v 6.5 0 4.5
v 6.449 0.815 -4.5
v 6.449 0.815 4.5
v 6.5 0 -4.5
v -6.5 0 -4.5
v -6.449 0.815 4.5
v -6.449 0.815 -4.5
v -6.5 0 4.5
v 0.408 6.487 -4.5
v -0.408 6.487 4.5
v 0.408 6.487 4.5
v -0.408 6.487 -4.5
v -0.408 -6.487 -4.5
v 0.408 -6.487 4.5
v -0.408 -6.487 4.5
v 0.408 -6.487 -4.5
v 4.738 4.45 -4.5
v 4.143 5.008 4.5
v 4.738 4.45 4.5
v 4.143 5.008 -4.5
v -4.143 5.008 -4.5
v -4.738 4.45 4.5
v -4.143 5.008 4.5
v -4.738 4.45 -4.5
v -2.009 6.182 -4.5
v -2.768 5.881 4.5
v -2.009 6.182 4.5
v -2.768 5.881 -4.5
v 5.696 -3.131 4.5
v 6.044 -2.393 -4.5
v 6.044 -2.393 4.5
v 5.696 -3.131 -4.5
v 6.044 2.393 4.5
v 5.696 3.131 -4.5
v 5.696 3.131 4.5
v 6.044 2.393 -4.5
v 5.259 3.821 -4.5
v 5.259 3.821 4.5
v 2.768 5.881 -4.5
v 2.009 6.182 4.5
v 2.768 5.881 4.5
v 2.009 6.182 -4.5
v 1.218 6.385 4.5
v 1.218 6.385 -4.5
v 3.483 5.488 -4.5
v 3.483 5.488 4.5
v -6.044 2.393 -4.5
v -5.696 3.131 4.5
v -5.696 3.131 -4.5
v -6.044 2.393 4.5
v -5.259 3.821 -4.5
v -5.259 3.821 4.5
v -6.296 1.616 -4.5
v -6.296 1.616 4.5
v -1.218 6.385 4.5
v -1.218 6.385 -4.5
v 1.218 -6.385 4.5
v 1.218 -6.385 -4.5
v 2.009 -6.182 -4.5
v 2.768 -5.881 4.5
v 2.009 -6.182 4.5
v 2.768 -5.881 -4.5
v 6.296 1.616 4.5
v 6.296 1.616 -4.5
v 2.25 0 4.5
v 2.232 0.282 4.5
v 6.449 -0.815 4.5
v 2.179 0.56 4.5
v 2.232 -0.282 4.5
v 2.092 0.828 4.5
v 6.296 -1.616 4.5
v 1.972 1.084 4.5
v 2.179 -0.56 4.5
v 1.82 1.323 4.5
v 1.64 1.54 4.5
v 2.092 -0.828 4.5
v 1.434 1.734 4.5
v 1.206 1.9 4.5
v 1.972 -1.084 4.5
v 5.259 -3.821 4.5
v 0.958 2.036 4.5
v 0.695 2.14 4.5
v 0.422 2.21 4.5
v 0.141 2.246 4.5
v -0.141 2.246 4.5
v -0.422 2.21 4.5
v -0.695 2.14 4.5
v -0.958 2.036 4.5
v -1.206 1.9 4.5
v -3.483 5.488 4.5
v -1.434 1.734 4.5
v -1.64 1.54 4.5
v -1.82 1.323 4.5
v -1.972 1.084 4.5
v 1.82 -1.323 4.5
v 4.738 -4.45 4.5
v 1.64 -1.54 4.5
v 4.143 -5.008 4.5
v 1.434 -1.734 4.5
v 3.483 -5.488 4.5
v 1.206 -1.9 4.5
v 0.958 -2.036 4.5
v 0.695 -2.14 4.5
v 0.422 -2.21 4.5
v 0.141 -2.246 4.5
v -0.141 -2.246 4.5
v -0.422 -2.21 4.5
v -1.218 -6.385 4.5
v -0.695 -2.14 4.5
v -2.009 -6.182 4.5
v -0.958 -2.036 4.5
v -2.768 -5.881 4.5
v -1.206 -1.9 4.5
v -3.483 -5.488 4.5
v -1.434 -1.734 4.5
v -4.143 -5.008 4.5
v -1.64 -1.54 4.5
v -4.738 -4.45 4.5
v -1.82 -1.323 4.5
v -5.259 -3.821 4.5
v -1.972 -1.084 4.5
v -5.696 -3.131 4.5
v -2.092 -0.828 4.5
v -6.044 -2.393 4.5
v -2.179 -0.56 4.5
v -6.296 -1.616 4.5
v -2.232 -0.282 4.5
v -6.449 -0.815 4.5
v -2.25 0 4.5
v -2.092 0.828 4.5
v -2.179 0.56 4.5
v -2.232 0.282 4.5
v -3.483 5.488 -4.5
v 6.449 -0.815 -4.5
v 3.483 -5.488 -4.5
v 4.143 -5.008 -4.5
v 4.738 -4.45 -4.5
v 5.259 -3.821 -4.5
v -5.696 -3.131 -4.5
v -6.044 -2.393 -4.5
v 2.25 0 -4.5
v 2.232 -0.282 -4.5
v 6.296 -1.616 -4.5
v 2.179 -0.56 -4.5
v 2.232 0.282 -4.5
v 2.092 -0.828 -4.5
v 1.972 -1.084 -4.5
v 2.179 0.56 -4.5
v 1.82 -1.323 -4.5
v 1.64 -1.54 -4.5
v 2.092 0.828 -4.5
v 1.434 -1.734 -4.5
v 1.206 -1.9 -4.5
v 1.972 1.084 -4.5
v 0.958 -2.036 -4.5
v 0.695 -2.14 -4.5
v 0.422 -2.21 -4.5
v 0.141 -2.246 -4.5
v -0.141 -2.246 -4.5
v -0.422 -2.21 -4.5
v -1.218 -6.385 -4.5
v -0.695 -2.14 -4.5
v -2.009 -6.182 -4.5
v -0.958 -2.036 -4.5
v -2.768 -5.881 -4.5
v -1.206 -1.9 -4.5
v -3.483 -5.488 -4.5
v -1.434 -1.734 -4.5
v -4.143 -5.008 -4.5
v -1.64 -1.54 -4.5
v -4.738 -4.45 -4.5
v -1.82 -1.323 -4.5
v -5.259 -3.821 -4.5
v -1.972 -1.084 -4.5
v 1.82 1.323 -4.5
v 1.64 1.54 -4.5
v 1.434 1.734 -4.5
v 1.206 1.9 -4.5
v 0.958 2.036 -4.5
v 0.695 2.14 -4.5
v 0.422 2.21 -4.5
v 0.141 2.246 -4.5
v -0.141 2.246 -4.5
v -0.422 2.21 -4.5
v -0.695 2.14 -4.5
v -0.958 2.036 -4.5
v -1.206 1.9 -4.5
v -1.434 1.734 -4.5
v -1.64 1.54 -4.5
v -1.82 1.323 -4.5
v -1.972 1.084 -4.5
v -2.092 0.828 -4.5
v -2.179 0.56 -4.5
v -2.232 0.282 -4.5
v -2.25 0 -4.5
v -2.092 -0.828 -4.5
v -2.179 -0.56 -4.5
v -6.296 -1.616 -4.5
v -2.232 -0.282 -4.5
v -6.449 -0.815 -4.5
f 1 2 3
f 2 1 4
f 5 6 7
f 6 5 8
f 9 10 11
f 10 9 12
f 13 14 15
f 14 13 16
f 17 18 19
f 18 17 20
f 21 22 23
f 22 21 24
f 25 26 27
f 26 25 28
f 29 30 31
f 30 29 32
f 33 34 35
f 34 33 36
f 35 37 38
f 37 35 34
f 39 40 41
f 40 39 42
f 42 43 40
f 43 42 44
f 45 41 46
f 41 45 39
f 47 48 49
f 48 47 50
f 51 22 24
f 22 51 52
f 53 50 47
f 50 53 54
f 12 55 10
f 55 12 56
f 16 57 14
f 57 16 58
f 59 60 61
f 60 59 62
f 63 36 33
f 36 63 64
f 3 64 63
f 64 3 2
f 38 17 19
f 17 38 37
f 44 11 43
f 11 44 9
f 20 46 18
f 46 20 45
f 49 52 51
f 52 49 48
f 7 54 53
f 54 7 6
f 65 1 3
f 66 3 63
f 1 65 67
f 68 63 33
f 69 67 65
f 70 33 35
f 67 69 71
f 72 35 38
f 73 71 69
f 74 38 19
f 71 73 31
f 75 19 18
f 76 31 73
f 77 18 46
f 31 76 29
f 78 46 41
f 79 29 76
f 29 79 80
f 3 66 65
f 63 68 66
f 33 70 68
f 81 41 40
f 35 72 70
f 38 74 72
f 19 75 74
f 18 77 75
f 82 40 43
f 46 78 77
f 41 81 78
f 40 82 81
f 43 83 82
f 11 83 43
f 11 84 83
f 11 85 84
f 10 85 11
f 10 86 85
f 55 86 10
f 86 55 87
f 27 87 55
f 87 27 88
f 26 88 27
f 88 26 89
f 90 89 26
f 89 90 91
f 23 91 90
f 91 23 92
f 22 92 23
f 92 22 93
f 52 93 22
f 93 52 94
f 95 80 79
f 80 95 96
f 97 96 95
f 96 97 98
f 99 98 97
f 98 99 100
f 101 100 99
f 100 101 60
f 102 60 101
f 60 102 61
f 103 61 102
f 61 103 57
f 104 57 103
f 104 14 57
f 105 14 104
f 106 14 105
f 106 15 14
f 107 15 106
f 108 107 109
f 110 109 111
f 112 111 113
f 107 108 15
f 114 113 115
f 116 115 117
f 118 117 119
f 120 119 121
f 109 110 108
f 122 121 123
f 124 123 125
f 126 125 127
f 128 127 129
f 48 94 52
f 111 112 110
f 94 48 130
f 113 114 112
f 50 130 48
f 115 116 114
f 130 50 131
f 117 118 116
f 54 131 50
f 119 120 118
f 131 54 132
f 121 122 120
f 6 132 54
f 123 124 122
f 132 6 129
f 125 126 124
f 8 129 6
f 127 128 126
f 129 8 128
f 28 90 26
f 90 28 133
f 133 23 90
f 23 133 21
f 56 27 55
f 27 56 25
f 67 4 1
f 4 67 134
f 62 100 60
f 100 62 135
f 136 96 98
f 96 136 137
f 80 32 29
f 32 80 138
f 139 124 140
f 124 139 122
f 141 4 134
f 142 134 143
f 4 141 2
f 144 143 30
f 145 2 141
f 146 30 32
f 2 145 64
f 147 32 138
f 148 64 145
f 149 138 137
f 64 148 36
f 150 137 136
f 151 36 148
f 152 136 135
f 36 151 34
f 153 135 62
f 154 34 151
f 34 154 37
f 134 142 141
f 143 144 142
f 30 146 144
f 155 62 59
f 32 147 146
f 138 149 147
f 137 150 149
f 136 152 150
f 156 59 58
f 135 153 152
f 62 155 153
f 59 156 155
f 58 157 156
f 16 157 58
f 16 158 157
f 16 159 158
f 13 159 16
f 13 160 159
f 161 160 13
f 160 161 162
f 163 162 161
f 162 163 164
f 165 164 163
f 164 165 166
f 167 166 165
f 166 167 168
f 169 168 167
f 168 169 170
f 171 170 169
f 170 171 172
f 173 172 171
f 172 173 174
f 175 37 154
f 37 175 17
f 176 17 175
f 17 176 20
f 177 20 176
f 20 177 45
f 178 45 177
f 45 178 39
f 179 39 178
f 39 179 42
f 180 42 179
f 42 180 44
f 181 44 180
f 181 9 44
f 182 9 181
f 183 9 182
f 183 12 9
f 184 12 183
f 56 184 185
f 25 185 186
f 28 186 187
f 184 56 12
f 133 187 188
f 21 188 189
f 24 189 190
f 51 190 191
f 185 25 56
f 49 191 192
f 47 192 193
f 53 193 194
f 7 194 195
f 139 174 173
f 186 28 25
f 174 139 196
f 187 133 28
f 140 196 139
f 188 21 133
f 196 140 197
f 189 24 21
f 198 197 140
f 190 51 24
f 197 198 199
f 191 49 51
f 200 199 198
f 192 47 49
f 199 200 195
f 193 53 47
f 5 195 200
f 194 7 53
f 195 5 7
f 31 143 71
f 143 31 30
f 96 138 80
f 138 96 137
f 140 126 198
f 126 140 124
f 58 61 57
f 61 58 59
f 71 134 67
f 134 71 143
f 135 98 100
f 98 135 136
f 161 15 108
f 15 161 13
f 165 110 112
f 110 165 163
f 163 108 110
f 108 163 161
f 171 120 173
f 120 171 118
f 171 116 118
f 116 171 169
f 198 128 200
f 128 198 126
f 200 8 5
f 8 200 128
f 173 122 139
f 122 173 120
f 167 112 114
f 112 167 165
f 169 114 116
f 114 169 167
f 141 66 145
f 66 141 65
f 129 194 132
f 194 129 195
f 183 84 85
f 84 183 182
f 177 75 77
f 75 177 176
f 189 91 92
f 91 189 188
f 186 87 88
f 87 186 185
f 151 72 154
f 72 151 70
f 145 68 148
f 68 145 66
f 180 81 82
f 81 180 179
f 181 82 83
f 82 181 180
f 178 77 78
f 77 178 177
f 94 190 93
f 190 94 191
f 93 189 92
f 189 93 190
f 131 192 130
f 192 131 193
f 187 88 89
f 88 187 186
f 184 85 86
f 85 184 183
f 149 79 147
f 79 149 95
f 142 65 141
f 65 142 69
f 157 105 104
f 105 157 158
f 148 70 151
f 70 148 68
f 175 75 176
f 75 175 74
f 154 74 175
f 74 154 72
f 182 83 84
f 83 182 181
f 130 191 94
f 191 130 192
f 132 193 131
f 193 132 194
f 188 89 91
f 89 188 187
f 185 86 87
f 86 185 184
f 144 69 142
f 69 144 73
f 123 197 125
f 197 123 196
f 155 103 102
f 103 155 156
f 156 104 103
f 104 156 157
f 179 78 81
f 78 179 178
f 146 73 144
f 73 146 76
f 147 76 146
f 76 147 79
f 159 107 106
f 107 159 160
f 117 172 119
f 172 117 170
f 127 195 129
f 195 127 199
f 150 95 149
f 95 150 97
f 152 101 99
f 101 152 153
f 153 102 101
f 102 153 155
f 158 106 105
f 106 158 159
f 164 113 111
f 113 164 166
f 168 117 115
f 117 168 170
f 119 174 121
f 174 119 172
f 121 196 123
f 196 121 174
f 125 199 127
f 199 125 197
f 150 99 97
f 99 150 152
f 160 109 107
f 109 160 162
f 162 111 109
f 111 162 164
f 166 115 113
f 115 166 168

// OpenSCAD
$fn = 50;


difference() {
	union() {
		translate(v = [0, 0, -4.5000000000]) {
			cylinder(h = 9, r = 6.5000000000);
		}
	}
	union() {
		translate(v = [0, 0, -100.0000000000]) {
			cylinder(h = 200, r = 2.2500000000);
		}
	}
}
